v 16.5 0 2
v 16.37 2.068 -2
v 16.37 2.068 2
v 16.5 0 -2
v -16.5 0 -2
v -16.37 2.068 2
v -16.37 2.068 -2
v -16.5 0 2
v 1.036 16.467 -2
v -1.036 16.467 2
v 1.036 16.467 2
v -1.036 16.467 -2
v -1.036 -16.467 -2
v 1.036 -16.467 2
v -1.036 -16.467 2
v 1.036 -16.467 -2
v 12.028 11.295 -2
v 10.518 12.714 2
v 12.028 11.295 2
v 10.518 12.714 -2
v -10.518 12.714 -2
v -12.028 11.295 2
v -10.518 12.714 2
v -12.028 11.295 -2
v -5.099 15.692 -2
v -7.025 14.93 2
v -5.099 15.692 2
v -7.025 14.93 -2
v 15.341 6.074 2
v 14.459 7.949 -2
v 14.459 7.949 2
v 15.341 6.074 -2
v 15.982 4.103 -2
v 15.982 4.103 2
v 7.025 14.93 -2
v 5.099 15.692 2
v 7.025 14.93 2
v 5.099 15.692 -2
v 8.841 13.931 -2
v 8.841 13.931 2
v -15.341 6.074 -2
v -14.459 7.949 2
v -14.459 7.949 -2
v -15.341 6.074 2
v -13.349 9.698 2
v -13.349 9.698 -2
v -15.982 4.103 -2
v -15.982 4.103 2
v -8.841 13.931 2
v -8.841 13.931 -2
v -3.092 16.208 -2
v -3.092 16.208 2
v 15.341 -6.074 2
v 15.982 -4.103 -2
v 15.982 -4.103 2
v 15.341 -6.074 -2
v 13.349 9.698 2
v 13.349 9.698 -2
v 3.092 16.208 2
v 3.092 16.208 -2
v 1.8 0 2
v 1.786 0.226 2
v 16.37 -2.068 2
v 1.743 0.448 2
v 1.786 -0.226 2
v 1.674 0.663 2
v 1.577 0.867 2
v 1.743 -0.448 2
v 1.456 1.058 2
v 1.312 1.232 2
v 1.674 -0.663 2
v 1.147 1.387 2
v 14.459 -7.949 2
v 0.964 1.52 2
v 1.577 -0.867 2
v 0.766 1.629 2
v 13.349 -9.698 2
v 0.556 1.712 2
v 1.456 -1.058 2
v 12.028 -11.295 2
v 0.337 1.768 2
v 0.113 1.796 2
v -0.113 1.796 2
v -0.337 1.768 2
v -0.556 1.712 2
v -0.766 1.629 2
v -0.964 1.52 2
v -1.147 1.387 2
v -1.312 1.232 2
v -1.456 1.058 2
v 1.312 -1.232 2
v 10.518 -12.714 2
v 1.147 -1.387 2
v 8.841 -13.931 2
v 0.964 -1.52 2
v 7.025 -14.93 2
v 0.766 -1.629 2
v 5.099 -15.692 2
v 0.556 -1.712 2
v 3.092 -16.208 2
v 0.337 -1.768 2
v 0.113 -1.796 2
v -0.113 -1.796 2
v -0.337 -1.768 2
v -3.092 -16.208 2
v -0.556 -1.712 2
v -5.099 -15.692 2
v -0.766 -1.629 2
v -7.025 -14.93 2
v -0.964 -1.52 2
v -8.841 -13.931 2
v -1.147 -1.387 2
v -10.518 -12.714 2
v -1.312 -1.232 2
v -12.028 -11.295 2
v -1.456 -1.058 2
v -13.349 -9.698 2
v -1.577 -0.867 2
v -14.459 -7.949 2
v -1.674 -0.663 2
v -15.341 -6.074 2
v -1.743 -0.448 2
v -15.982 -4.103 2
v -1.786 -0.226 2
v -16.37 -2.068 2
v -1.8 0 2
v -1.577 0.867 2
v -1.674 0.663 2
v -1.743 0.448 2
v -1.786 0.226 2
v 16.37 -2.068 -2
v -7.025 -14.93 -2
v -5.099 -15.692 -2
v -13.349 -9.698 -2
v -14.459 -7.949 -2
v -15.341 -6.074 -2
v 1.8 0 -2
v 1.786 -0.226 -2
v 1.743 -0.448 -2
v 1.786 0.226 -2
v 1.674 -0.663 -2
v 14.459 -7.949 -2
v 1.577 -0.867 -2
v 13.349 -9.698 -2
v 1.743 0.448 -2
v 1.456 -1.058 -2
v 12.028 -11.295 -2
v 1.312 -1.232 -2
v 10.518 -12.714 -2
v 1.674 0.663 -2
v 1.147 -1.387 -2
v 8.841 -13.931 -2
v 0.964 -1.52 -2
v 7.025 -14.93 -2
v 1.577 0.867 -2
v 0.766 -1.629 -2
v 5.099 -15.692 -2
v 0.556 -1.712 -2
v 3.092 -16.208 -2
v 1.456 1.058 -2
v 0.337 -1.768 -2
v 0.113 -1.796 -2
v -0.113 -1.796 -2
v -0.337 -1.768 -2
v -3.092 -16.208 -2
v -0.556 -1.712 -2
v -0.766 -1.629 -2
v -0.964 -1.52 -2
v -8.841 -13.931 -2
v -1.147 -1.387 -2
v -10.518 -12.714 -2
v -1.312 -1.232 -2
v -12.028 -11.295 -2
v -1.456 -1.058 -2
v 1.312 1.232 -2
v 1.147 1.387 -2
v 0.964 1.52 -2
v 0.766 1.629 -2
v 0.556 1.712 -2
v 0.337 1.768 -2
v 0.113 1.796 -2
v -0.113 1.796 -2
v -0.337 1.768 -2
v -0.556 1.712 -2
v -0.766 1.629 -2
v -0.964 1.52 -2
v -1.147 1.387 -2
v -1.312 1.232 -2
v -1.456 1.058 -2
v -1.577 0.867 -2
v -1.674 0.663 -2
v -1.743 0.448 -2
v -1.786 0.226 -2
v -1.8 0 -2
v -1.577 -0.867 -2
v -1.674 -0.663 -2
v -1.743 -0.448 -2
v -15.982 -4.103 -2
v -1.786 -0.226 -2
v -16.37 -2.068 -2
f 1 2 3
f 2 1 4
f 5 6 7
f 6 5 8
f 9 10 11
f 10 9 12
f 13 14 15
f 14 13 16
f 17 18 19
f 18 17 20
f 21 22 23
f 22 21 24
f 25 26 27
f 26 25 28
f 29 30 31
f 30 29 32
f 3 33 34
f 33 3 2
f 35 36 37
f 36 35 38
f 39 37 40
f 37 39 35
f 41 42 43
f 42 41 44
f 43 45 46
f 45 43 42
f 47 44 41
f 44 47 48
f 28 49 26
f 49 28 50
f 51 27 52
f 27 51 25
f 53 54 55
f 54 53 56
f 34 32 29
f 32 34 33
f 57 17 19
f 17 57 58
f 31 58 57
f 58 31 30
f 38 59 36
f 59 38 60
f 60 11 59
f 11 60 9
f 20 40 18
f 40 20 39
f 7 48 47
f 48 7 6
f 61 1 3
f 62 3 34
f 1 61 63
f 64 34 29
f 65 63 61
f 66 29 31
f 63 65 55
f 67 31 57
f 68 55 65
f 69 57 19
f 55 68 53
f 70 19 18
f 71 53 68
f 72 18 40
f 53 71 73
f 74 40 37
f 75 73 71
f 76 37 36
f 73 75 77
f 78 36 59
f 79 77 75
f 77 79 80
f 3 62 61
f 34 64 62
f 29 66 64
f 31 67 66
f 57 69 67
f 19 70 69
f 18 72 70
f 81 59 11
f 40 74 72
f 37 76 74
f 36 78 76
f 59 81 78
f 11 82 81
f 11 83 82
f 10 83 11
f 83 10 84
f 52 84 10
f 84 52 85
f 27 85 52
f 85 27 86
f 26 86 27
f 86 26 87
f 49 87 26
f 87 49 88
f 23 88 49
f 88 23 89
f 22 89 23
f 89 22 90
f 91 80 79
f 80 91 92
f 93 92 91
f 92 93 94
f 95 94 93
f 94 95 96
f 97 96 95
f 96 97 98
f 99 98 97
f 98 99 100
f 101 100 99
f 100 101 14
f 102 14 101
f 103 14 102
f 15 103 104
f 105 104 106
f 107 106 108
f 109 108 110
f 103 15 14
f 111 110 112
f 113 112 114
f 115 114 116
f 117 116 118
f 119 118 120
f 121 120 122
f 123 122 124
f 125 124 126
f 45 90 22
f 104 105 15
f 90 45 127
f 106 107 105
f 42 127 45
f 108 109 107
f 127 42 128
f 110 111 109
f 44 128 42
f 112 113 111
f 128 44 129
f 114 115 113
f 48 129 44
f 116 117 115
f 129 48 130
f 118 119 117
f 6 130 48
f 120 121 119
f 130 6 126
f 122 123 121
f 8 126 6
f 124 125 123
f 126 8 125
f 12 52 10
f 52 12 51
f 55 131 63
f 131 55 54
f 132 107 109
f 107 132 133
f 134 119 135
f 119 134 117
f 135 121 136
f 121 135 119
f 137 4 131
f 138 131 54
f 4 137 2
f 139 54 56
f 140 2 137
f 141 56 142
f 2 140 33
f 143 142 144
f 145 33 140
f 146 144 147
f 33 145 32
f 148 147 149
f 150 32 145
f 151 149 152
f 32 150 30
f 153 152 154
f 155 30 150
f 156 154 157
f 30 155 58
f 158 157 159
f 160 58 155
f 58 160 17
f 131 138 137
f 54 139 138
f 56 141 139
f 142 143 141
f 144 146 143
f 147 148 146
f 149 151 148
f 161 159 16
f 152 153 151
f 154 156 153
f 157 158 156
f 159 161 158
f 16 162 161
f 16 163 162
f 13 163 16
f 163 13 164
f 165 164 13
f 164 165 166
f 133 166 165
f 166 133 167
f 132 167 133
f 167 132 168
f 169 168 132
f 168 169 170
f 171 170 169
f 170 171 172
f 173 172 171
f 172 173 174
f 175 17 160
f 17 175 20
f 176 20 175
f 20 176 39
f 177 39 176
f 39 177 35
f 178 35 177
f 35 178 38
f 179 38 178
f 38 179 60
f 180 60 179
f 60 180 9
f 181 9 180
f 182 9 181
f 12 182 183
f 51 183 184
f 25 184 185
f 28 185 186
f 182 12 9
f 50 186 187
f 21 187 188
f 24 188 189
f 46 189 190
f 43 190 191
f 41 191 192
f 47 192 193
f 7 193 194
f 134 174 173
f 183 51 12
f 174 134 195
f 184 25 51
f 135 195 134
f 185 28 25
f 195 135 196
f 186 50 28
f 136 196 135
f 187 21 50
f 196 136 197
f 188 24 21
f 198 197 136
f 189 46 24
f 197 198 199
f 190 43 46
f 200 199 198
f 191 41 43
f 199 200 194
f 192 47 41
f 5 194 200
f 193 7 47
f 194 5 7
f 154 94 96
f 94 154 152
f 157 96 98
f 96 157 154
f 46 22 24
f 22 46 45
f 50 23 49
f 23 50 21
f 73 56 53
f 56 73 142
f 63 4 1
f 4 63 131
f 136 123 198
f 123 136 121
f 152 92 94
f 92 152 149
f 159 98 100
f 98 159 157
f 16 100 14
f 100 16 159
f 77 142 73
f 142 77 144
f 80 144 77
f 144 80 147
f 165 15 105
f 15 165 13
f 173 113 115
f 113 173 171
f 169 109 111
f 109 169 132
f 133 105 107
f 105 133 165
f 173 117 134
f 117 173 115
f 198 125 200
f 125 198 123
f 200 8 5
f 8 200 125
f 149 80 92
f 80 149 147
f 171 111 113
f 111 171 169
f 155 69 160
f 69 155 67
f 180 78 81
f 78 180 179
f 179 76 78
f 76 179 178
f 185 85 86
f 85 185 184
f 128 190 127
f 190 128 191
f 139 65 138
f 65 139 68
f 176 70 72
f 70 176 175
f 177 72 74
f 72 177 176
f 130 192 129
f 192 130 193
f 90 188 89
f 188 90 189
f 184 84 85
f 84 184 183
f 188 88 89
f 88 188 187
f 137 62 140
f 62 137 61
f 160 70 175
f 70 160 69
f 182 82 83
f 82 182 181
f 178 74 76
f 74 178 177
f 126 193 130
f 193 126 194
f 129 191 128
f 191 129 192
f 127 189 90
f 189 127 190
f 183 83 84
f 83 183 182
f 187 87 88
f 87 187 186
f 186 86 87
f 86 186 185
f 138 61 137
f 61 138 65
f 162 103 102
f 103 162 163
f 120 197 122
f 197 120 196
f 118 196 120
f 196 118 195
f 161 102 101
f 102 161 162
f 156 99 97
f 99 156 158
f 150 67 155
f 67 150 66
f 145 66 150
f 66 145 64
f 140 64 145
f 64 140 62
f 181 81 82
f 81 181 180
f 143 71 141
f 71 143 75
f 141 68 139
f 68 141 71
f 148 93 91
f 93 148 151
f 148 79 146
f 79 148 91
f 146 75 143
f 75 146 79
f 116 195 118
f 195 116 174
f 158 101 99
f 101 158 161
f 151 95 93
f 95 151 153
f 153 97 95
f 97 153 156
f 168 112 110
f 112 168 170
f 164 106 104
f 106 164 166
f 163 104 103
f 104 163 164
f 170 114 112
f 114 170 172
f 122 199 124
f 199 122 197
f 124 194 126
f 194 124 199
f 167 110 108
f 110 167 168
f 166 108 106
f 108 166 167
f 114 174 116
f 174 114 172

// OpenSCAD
$fn = 50;


difference() {
	union() {
		translate(v = [0, 0, -2.0000000000]) {
			cylinder(h = 4, r = 16.5000000000);
		}
	}
	union() {
		translate(v = [0, 0, -100.0000000000]) {
			cylinder(h = 200, r = 1.8000000000);
		}
	}
}
